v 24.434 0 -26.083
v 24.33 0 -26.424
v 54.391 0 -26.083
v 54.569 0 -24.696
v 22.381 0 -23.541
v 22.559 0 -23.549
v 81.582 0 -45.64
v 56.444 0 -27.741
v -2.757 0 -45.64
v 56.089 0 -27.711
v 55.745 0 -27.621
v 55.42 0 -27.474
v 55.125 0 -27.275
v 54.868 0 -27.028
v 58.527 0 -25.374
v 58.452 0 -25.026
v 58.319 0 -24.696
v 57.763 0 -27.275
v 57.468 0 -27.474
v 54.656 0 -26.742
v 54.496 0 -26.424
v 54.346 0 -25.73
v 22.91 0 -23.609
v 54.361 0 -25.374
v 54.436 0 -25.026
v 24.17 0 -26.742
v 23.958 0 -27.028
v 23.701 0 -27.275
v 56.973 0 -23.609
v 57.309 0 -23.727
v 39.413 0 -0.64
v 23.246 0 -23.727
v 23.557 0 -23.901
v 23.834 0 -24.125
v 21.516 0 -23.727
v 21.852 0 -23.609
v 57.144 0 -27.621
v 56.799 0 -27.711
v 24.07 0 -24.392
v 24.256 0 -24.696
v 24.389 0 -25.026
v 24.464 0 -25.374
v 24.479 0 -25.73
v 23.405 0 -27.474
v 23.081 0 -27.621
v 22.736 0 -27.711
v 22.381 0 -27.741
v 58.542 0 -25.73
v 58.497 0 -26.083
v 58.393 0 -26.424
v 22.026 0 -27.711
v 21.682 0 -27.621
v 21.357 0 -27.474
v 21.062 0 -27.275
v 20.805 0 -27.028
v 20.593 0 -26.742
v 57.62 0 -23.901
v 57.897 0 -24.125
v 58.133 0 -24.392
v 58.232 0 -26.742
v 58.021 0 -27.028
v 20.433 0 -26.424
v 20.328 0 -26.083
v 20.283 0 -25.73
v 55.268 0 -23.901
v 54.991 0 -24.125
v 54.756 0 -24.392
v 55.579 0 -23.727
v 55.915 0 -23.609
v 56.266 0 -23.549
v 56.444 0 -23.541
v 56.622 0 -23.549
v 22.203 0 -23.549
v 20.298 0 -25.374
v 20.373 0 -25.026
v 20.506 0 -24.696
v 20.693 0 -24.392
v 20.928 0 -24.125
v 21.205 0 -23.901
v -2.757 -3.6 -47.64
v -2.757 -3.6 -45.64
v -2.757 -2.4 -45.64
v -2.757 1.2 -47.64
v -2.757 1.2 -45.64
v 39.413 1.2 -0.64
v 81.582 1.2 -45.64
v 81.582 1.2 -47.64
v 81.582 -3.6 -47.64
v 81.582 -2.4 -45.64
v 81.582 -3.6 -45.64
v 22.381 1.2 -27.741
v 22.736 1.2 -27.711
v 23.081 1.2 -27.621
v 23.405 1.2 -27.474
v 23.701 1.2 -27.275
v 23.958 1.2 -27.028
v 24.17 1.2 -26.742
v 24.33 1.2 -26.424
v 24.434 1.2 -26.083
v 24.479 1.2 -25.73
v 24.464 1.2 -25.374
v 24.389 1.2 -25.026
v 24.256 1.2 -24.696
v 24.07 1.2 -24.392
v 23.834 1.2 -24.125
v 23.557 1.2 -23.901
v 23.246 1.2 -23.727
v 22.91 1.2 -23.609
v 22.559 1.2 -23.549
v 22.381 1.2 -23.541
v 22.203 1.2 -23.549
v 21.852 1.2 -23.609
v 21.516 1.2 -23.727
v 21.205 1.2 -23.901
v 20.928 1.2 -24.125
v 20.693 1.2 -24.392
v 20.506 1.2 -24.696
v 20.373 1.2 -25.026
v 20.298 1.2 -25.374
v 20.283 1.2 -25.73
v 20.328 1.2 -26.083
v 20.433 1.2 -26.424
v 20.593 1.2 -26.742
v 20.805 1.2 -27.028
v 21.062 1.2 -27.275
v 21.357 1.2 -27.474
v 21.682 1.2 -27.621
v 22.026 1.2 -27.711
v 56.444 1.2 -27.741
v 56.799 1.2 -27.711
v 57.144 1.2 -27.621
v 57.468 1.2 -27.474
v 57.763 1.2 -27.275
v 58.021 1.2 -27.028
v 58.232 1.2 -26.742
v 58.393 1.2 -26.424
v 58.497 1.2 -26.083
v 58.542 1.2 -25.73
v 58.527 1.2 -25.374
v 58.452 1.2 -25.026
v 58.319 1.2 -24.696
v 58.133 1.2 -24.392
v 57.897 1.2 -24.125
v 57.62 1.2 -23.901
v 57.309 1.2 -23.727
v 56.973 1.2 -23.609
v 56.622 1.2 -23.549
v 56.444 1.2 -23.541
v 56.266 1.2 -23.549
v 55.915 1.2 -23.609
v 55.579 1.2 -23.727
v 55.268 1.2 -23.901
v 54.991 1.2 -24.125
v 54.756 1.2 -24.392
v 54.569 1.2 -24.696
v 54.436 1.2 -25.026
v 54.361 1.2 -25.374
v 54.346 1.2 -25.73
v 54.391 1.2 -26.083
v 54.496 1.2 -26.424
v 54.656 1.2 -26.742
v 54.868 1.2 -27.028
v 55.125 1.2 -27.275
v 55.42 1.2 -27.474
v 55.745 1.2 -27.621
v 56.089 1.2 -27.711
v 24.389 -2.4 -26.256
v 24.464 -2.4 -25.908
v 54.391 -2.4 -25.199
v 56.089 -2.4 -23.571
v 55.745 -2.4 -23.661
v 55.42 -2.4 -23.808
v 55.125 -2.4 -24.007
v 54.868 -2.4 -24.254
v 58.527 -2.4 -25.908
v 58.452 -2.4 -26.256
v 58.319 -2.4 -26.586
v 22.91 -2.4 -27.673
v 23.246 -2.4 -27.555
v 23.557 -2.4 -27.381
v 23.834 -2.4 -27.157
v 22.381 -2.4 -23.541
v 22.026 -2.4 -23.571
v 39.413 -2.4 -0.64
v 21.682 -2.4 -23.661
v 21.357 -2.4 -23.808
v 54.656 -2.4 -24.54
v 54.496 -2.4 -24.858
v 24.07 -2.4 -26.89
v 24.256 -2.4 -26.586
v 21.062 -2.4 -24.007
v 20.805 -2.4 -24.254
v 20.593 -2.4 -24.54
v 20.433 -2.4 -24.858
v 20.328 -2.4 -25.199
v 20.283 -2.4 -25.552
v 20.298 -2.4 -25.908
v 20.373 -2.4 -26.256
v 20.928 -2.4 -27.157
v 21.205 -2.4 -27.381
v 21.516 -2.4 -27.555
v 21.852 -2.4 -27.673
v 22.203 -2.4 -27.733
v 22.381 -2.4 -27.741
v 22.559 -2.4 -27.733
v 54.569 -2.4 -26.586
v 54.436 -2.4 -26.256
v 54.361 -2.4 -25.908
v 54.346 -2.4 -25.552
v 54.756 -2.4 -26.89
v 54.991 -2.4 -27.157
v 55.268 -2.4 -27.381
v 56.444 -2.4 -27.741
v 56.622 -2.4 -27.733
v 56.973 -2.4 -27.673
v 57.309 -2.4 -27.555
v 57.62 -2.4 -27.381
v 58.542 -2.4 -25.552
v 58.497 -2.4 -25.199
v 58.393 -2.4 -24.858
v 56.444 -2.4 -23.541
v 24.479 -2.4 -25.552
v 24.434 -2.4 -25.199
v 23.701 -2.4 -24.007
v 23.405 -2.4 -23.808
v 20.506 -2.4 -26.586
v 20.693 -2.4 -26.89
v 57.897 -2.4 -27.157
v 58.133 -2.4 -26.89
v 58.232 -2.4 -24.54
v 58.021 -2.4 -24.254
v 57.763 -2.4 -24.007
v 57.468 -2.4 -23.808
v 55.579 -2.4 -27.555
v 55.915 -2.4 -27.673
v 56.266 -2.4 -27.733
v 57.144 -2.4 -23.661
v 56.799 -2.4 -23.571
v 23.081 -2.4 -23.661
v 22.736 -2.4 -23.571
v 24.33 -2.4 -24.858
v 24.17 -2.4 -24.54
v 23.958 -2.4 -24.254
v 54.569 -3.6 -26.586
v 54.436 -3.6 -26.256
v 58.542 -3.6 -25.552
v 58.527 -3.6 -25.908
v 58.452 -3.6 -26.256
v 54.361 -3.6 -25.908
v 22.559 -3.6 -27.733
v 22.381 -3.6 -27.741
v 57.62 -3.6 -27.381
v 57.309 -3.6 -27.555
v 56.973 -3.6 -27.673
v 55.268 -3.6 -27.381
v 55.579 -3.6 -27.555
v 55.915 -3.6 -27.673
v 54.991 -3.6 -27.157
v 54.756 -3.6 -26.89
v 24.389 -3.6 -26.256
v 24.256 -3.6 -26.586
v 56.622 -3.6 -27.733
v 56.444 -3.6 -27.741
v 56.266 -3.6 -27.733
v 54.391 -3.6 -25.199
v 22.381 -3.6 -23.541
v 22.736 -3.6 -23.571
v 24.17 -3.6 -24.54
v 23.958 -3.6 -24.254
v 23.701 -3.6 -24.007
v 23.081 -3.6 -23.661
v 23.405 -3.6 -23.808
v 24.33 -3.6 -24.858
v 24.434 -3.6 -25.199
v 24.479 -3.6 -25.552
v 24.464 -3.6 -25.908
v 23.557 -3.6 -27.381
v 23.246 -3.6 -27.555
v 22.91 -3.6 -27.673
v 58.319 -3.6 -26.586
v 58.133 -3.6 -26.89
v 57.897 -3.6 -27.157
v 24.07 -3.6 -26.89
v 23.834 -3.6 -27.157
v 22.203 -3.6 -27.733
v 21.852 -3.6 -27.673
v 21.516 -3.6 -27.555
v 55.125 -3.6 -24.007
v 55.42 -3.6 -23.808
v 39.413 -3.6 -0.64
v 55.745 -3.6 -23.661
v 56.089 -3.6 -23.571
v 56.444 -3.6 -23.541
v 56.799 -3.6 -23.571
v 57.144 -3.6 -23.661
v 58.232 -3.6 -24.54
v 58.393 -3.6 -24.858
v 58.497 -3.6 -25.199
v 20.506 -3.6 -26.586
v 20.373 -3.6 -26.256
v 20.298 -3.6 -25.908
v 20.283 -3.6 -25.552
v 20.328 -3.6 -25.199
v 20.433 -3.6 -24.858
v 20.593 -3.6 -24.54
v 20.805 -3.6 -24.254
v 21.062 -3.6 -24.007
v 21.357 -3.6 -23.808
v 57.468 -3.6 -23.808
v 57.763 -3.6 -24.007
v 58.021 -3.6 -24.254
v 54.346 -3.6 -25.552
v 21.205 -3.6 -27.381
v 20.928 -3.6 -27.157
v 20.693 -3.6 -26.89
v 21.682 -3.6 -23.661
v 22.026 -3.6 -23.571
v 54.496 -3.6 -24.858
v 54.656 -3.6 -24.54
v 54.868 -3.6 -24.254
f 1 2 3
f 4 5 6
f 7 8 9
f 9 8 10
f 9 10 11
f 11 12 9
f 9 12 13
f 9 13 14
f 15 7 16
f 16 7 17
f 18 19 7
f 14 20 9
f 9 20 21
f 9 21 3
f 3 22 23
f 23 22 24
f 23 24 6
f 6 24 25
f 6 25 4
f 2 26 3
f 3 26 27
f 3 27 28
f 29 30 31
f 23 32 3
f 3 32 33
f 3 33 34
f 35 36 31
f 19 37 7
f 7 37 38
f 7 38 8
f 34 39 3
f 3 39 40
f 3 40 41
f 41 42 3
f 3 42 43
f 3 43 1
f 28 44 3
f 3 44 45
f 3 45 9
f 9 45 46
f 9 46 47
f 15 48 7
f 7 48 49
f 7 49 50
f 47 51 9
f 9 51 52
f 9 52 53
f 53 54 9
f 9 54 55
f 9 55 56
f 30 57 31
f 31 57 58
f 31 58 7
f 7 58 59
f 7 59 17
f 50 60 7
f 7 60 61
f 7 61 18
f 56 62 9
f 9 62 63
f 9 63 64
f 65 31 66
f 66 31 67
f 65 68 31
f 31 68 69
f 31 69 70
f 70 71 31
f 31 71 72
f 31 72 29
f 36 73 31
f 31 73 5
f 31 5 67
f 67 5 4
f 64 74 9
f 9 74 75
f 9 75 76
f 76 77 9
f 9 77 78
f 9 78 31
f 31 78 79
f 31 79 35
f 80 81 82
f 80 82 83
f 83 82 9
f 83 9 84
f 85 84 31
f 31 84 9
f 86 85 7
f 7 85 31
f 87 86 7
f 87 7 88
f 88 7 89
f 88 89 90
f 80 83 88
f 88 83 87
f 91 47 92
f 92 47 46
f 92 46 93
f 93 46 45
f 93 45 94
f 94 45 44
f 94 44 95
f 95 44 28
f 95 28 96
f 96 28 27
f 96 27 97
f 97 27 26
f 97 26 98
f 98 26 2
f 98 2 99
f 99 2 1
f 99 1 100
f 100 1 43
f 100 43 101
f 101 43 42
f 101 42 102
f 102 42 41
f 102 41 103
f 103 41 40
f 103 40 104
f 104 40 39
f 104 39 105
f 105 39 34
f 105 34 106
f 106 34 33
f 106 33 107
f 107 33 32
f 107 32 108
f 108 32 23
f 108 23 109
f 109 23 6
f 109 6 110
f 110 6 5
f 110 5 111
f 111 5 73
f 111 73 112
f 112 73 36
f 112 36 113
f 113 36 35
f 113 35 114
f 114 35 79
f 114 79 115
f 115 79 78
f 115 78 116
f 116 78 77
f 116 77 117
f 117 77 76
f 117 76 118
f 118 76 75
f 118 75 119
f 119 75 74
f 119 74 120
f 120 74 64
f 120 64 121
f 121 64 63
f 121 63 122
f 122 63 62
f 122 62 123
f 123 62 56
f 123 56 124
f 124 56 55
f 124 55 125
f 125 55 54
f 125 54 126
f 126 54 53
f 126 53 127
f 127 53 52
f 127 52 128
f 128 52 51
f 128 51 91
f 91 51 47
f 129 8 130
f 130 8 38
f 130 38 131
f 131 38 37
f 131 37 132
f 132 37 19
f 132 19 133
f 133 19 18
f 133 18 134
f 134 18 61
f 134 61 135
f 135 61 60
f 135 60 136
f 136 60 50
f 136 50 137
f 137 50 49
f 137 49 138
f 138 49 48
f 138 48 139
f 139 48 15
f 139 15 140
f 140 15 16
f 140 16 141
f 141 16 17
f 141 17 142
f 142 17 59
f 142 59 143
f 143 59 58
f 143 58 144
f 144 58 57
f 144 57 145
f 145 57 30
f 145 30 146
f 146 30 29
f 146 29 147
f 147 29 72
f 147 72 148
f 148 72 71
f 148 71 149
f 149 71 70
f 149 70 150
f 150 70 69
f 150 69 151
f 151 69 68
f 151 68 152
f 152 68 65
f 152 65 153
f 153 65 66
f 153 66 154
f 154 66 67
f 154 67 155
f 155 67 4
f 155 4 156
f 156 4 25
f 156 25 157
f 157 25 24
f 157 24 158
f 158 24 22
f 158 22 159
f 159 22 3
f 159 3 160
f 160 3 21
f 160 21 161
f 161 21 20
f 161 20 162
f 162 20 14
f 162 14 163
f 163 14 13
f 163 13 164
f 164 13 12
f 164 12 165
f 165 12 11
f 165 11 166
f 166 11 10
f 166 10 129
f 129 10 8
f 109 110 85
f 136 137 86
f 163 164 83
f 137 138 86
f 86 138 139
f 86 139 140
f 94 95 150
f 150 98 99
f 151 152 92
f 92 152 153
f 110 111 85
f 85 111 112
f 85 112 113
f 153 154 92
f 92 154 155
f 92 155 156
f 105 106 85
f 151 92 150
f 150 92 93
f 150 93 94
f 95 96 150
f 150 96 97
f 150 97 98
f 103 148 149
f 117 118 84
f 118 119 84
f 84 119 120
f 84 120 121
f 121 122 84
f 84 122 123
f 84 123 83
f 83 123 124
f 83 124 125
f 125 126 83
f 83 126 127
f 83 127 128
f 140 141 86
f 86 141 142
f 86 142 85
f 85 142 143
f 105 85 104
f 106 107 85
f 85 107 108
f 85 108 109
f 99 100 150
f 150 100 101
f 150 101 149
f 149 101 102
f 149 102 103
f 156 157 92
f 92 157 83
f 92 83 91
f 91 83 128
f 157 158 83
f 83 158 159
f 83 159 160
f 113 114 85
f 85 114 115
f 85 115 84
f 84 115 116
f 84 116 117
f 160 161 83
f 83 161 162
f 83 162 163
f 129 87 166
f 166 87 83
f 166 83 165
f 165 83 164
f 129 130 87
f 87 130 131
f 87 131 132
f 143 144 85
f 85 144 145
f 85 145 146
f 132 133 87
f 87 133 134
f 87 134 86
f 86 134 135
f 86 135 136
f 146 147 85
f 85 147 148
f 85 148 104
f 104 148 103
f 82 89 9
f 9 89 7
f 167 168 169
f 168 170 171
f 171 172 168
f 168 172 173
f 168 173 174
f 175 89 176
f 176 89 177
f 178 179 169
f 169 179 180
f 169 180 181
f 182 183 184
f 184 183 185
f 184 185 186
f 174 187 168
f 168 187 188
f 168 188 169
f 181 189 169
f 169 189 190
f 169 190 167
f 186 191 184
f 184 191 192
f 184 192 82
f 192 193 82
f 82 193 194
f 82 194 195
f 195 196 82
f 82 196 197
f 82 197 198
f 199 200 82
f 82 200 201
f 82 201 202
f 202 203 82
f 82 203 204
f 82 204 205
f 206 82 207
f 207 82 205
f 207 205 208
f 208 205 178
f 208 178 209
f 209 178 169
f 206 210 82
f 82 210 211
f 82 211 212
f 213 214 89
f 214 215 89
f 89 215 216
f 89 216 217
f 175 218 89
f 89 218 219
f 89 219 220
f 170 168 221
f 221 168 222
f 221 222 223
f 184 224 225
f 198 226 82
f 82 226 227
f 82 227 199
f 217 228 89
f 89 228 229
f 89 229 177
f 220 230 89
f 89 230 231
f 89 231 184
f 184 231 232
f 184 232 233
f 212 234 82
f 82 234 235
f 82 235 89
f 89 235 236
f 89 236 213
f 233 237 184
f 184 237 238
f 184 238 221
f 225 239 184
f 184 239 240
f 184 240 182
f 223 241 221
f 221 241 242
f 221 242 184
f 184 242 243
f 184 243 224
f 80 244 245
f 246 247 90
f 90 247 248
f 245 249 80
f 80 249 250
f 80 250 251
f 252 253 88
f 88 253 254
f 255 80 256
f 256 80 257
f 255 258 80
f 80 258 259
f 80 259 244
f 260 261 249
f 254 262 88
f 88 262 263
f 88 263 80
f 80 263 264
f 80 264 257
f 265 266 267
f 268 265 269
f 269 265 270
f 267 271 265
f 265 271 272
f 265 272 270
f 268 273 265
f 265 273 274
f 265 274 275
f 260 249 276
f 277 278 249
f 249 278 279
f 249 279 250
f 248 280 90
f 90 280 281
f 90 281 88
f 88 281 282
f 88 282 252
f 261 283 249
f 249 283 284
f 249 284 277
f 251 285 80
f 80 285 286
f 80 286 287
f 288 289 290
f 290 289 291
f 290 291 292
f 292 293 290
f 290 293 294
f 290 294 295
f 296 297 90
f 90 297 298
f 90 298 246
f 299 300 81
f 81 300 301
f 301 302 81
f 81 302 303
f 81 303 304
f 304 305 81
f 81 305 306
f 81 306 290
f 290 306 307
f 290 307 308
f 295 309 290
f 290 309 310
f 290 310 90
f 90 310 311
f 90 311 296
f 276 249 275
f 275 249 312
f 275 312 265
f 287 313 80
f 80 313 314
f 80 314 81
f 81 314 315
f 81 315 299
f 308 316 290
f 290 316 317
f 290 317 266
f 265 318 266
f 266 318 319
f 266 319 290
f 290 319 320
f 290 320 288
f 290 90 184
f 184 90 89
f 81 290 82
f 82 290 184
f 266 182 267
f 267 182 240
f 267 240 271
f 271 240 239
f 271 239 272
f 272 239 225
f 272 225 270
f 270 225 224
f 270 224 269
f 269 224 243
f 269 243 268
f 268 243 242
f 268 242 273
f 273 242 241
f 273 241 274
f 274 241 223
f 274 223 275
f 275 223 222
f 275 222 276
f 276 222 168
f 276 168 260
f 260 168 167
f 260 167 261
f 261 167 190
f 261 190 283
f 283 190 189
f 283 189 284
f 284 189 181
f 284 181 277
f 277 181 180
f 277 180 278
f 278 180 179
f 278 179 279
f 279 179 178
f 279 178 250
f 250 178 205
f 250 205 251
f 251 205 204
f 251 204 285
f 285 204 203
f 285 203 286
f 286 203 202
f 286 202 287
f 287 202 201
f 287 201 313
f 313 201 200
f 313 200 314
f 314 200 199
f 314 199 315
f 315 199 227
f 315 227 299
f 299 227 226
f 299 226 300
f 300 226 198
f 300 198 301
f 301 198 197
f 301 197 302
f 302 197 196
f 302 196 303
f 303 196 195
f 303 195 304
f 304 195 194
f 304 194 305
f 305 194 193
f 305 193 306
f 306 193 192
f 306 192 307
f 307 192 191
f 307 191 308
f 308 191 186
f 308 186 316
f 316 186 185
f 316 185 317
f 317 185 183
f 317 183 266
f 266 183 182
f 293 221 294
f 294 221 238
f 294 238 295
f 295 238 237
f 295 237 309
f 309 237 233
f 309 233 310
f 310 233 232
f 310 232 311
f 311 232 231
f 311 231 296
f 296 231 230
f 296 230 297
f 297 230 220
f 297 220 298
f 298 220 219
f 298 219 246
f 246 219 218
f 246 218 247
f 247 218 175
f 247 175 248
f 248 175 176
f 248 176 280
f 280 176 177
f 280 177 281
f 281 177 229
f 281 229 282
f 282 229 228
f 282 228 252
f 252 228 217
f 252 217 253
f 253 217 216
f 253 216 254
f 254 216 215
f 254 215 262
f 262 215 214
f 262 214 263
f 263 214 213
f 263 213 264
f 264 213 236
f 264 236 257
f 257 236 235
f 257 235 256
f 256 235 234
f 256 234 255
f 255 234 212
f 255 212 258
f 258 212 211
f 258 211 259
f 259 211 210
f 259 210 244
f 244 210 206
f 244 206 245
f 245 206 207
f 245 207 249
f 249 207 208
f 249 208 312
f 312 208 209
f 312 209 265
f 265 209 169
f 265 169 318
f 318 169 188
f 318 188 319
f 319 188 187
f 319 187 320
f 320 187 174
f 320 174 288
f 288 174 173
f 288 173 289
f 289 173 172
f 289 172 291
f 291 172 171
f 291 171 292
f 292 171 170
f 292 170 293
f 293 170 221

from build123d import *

# Parameters (mm, degrees)
SKETCH4_R           = 2.1
BOSS_EXTRUDE3_DEPTH = 1.2
SKETCH5_W           = 84.339489928
SKETCH5_H           = 2
BOSS_EXTRUDE4_DEPTH = 2.4
SKETCH6_R           = 2.1
BOSS_EXTRUDE5_DEPTH = 1.2


with BuildPart() as part:
    # Sketch4 → Boss-Extrude3 (new body)
    with BuildSketch(Plane(origin=(0, 0, 0), x_dir=(1, 0, 0), z_dir=(0, 1, 0))):
        Polygon((39.4127274, 47.640295112), (-2.757017564, 47.640295112), (-2.757017564, 45.640295112), (39.4127274, 0.640295112), align=None)
        with Locations((22.381300815, 25.64100497)):
            Circle(SKETCH4_R, mode=Mode.SUBTRACT)
        Polygon((81.582472364, 47.640295112), (39.4127274, 47.640295112), (39.4127274, 0.640295112), (81.582472364, 45.640295112), align=None)
        with Locations((56.444153985, 25.64100497)):
            Circle(SKETCH4_R, mode=Mode.SUBTRACT)
    extrude(amount=BOSS_EXTRUDE3_DEPTH)

    # Sketch5 → Boss-Extrude4 (add)
    with BuildSketch(Plane(origin=(0, 0, 0), x_dir=(-1, 0, 0), z_dir=(0, -1, 0))):
        with Locations((-39.4127274, 46.640295112)):
            Rectangle(SKETCH5_W, SKETCH5_H)
    extrude(amount=BOSS_EXTRUDE4_DEPTH)

    # Sketch6 → Boss-Extrude5 (add)
    with BuildSketch(Plane(origin=(0, -2.4, 0), x_dir=(-1, 0, 0), z_dir=(0, -1, 0))):
        Polygon((2.757017564, 47.640295112), (-81.582472364, 47.640295112), (-81.582472364, 45.640295112), (-39.4127274, 0.640295112), (2.757017564, 45.640295112), align=None)
        with Locations((-22.381300815, 25.64100497)):
            Circle(SKETCH6_R, mode=Mode.SUBTRACT)
        with Locations((-56.444153985, 25.64100497)):
            Circle(SKETCH6_R, mode=Mode.SUBTRACT)
    extrude(amount=BOSS_EXTRUDE5_DEPTH)


solid = part.part
